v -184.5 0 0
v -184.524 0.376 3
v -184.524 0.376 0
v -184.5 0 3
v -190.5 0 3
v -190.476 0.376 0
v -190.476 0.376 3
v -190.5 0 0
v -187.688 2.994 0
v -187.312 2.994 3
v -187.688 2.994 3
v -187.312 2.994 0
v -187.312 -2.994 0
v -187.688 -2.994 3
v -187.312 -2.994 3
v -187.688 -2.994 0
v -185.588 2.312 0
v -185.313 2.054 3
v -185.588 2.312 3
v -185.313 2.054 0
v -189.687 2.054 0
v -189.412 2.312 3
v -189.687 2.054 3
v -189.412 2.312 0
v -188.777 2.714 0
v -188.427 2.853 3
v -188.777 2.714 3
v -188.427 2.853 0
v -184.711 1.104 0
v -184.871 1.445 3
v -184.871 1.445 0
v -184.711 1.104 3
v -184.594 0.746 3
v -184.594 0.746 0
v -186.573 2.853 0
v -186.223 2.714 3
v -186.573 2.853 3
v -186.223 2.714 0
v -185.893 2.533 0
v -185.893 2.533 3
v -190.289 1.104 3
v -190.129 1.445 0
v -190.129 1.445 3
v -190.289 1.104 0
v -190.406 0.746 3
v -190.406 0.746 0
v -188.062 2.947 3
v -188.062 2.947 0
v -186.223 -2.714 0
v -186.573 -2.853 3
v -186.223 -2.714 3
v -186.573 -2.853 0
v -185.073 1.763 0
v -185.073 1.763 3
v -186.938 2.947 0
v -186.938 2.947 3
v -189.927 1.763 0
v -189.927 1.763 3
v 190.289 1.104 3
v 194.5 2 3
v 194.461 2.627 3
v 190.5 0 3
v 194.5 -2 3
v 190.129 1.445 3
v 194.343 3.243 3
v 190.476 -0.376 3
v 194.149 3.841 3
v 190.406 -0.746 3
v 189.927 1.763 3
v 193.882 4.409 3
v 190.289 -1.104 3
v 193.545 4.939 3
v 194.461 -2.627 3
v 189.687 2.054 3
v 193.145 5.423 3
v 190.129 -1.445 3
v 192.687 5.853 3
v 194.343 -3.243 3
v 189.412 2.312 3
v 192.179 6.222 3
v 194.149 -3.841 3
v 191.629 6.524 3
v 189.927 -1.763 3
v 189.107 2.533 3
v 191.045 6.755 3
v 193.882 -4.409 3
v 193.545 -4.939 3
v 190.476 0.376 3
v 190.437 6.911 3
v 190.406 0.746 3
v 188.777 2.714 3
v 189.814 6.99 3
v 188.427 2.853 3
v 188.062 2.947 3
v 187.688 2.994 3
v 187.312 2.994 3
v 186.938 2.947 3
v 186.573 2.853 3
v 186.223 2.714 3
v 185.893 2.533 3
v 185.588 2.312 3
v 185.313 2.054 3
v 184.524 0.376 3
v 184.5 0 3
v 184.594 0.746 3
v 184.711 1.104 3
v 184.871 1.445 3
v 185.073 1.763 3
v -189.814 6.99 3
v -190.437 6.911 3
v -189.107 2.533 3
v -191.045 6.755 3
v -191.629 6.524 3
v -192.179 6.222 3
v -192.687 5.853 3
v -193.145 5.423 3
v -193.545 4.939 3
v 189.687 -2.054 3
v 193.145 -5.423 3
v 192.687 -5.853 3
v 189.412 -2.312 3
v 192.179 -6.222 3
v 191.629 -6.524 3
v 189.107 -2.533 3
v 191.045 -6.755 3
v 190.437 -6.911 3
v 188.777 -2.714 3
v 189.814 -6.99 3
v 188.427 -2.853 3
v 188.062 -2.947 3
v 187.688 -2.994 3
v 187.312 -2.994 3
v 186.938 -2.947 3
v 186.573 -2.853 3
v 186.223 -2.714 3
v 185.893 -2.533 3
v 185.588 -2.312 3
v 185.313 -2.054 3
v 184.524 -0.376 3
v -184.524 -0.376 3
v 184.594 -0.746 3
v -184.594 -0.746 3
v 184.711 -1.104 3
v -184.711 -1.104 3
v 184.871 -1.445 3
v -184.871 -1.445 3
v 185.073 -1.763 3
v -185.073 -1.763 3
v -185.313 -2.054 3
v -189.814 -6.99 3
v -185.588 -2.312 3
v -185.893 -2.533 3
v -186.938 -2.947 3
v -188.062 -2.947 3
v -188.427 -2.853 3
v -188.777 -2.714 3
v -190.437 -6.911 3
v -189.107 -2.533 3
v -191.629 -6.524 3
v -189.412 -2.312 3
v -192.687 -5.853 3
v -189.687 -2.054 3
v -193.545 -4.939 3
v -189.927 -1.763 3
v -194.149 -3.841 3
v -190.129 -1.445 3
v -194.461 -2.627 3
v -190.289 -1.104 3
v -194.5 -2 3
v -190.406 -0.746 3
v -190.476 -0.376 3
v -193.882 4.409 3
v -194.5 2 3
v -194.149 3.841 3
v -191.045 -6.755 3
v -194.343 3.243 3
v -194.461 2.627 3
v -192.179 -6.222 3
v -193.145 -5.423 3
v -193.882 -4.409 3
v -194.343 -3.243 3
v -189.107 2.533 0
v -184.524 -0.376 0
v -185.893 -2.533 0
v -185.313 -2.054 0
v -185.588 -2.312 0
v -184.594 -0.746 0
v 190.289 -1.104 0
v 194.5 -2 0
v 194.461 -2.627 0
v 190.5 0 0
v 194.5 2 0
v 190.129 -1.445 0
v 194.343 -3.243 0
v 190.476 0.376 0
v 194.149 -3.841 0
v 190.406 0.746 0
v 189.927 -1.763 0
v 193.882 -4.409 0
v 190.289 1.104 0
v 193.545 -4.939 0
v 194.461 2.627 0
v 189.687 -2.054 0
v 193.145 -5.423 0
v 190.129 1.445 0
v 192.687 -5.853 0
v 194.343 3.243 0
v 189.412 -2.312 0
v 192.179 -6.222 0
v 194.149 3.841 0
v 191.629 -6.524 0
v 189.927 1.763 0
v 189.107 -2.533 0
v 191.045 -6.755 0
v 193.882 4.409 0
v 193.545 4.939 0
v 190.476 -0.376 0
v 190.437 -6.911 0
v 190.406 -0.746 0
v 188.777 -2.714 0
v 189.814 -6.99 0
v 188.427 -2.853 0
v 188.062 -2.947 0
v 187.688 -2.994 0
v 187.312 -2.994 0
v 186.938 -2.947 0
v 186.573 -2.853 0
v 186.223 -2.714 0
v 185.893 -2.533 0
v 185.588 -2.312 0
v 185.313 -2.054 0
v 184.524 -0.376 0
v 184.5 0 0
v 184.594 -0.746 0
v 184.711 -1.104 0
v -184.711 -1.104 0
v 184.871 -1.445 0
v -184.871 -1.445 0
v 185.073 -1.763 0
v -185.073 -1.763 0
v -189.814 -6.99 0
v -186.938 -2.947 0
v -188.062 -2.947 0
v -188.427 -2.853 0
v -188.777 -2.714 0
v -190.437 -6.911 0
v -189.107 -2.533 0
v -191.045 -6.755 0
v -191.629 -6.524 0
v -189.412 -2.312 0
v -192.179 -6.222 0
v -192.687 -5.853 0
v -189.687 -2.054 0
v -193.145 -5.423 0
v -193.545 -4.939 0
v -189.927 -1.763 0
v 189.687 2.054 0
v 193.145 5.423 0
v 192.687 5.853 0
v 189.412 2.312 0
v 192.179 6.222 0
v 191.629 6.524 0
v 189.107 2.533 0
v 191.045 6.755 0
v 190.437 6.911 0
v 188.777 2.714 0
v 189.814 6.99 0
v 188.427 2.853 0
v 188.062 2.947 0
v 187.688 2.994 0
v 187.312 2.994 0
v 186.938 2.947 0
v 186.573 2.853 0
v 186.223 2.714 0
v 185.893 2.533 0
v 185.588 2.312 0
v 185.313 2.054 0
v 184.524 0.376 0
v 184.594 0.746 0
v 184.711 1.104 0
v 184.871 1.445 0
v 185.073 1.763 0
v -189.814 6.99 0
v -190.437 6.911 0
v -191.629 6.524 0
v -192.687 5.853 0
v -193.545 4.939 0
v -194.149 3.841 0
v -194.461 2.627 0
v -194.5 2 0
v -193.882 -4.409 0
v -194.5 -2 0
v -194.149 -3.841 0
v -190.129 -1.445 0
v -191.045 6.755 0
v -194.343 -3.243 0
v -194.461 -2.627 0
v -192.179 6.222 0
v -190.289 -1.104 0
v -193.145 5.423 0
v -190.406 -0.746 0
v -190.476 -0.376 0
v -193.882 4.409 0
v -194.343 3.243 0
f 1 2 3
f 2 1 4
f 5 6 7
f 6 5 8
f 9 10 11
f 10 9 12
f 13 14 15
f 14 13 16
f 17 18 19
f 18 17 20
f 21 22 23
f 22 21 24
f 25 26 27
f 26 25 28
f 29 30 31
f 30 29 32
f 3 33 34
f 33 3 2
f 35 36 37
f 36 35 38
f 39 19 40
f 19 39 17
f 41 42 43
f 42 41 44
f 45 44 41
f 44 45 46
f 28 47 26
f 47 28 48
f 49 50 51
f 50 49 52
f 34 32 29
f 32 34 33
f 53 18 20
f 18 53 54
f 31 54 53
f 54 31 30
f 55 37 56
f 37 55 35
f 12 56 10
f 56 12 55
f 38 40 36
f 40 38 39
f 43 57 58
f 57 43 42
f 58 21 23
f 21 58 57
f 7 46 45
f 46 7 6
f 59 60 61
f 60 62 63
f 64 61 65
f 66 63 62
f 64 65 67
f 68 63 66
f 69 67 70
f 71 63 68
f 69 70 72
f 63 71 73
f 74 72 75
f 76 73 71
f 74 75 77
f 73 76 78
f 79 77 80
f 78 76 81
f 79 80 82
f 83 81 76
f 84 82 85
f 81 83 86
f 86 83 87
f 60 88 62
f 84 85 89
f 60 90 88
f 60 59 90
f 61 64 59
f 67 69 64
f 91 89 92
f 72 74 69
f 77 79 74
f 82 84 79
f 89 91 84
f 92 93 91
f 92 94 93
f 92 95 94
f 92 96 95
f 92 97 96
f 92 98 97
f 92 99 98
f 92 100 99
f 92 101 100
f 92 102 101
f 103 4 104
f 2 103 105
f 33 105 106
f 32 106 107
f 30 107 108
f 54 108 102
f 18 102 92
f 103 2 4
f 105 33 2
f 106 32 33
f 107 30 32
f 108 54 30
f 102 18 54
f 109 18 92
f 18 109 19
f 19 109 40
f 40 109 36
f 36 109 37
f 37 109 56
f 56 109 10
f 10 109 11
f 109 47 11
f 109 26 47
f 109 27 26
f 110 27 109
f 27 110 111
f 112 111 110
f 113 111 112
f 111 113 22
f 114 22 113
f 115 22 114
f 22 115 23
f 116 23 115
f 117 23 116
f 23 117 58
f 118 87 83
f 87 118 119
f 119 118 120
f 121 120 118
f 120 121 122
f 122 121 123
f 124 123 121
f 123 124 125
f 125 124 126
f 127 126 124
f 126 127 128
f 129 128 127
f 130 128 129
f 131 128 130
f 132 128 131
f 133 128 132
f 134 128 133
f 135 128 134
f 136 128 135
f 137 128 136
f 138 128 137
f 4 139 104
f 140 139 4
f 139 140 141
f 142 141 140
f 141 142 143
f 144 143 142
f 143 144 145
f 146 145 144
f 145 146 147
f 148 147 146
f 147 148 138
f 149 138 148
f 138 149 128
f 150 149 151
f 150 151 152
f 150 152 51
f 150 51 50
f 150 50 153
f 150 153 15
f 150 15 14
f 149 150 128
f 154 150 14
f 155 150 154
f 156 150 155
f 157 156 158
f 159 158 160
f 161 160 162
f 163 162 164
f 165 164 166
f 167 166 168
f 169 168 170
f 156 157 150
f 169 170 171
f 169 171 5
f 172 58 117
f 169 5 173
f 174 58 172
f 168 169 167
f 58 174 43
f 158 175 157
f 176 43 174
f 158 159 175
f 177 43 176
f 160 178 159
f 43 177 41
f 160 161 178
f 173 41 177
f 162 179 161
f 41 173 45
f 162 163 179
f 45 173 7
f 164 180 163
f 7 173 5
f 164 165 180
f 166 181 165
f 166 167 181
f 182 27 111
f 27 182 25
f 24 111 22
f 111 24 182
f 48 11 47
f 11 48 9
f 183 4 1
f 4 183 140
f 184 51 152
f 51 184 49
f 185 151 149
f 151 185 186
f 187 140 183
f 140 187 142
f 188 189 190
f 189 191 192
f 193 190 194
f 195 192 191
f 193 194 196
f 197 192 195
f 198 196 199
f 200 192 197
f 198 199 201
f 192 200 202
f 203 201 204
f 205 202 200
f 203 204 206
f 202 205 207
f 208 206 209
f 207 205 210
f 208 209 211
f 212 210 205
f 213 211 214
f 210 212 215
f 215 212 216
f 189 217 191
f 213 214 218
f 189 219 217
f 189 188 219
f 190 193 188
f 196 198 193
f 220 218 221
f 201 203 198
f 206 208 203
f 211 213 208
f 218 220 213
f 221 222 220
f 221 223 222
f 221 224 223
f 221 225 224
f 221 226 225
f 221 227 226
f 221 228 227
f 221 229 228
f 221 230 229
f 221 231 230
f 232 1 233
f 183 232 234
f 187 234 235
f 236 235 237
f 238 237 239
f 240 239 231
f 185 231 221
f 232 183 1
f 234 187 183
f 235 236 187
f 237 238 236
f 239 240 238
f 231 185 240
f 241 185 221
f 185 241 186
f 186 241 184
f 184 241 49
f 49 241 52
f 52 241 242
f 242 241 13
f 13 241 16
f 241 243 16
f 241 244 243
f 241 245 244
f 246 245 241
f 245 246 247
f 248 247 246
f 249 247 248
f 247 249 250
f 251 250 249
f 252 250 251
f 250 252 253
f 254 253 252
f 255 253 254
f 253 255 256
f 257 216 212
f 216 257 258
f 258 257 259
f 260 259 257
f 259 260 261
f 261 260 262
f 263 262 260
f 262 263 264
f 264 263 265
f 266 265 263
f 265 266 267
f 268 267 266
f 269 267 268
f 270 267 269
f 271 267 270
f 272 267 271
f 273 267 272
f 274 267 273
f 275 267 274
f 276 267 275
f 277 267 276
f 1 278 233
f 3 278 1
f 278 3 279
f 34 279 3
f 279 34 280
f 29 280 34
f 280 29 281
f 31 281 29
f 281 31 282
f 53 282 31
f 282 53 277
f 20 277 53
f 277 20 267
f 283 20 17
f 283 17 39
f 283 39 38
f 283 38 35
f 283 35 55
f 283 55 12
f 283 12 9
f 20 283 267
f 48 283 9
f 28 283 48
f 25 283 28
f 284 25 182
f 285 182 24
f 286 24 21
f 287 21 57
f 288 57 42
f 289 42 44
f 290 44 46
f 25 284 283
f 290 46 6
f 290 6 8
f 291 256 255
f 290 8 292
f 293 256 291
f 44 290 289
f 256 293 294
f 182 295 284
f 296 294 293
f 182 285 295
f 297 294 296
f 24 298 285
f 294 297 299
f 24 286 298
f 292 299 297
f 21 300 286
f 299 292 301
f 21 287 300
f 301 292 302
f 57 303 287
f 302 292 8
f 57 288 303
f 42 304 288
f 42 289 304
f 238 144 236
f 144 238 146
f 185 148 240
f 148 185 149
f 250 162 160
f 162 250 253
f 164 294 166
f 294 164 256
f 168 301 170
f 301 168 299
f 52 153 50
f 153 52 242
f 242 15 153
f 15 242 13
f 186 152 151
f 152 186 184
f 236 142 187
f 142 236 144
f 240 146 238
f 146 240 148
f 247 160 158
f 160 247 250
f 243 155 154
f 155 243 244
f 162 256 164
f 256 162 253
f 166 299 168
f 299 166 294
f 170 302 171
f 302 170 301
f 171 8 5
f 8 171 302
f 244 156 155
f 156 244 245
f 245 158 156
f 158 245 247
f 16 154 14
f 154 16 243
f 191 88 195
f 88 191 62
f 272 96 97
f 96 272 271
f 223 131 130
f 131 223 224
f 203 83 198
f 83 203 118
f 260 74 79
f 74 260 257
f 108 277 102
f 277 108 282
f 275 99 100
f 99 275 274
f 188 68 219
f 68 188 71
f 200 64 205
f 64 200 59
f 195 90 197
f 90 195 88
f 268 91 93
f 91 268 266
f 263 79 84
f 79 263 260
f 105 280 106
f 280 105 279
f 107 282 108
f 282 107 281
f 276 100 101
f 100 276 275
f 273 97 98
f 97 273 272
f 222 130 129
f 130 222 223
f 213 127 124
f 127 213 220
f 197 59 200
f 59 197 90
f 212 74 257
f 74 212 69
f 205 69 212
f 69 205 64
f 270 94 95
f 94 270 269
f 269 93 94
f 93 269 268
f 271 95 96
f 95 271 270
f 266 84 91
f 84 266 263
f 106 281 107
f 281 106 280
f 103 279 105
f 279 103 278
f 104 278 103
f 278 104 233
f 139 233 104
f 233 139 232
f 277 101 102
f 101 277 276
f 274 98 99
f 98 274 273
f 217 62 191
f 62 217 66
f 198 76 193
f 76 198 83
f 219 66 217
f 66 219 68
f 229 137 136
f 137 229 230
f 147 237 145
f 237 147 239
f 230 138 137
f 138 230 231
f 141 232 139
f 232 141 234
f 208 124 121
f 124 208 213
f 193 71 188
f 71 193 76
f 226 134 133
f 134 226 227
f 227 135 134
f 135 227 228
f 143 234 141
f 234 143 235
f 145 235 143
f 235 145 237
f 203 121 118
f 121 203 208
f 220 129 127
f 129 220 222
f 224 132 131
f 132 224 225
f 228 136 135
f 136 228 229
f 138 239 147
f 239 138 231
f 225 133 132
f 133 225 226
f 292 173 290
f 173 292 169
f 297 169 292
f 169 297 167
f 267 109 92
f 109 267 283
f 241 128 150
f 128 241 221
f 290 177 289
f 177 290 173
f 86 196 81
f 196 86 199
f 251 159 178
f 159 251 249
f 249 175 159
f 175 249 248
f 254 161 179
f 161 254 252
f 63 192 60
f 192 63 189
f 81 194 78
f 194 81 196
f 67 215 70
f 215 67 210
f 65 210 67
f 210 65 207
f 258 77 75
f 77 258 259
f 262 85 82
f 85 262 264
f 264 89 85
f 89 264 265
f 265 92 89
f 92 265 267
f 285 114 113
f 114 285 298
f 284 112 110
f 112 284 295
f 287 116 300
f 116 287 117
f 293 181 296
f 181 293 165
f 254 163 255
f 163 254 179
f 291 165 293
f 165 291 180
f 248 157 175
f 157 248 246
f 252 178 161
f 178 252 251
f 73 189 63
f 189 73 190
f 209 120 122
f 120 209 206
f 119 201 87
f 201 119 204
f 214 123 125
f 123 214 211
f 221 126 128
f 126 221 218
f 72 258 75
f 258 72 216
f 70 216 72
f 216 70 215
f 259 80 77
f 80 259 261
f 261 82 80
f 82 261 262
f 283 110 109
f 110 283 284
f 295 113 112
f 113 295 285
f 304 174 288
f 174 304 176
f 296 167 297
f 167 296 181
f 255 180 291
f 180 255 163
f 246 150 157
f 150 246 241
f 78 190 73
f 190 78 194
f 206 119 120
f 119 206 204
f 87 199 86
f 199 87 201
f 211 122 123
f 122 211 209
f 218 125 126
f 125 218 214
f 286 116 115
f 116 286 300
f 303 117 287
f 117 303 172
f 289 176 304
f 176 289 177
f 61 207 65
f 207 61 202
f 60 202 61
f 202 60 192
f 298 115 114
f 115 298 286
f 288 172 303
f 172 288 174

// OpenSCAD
$fn = 50;


difference() {
	union() {
		hull() {
			translate(v = [-189.5000000000, 2.0000000000, 0]) {
				cylinder(h = 3, r = 5);
			}
			translate(v = [189.5000000000, 2.0000000000, 0]) {
				cylinder(h = 3, r = 5);
			}
			translate(v = [-189.5000000000, -2.0000000000, 0]) {
				cylinder(h = 3, r = 5);
			}
			translate(v = [189.5000000000, -2.0000000000, 0]) {
				cylinder(h = 3, r = 5);
			}
		}
	}
	union() {
		translate(v = [-187.5000000000, 0.0000000000, -100.0000000000]) {
			cylinder(h = 200, r = 3.0000000000);
		}
		translate(v = [-187.5000000000, 0.0000000000, -100.0000000000]) {
			cylinder(h = 200, r = 3.0000000000);
		}
		translate(v = [187.5000000000, 0.0000000000, -100.0000000000]) {
			cylinder(h = 200, r = 3.0000000000);
		}
		translate(v = [187.5000000000, 0.0000000000, -100.0000000000]) {
			cylinder(h = 200, r = 3.0000000000);
		}
	}
}
